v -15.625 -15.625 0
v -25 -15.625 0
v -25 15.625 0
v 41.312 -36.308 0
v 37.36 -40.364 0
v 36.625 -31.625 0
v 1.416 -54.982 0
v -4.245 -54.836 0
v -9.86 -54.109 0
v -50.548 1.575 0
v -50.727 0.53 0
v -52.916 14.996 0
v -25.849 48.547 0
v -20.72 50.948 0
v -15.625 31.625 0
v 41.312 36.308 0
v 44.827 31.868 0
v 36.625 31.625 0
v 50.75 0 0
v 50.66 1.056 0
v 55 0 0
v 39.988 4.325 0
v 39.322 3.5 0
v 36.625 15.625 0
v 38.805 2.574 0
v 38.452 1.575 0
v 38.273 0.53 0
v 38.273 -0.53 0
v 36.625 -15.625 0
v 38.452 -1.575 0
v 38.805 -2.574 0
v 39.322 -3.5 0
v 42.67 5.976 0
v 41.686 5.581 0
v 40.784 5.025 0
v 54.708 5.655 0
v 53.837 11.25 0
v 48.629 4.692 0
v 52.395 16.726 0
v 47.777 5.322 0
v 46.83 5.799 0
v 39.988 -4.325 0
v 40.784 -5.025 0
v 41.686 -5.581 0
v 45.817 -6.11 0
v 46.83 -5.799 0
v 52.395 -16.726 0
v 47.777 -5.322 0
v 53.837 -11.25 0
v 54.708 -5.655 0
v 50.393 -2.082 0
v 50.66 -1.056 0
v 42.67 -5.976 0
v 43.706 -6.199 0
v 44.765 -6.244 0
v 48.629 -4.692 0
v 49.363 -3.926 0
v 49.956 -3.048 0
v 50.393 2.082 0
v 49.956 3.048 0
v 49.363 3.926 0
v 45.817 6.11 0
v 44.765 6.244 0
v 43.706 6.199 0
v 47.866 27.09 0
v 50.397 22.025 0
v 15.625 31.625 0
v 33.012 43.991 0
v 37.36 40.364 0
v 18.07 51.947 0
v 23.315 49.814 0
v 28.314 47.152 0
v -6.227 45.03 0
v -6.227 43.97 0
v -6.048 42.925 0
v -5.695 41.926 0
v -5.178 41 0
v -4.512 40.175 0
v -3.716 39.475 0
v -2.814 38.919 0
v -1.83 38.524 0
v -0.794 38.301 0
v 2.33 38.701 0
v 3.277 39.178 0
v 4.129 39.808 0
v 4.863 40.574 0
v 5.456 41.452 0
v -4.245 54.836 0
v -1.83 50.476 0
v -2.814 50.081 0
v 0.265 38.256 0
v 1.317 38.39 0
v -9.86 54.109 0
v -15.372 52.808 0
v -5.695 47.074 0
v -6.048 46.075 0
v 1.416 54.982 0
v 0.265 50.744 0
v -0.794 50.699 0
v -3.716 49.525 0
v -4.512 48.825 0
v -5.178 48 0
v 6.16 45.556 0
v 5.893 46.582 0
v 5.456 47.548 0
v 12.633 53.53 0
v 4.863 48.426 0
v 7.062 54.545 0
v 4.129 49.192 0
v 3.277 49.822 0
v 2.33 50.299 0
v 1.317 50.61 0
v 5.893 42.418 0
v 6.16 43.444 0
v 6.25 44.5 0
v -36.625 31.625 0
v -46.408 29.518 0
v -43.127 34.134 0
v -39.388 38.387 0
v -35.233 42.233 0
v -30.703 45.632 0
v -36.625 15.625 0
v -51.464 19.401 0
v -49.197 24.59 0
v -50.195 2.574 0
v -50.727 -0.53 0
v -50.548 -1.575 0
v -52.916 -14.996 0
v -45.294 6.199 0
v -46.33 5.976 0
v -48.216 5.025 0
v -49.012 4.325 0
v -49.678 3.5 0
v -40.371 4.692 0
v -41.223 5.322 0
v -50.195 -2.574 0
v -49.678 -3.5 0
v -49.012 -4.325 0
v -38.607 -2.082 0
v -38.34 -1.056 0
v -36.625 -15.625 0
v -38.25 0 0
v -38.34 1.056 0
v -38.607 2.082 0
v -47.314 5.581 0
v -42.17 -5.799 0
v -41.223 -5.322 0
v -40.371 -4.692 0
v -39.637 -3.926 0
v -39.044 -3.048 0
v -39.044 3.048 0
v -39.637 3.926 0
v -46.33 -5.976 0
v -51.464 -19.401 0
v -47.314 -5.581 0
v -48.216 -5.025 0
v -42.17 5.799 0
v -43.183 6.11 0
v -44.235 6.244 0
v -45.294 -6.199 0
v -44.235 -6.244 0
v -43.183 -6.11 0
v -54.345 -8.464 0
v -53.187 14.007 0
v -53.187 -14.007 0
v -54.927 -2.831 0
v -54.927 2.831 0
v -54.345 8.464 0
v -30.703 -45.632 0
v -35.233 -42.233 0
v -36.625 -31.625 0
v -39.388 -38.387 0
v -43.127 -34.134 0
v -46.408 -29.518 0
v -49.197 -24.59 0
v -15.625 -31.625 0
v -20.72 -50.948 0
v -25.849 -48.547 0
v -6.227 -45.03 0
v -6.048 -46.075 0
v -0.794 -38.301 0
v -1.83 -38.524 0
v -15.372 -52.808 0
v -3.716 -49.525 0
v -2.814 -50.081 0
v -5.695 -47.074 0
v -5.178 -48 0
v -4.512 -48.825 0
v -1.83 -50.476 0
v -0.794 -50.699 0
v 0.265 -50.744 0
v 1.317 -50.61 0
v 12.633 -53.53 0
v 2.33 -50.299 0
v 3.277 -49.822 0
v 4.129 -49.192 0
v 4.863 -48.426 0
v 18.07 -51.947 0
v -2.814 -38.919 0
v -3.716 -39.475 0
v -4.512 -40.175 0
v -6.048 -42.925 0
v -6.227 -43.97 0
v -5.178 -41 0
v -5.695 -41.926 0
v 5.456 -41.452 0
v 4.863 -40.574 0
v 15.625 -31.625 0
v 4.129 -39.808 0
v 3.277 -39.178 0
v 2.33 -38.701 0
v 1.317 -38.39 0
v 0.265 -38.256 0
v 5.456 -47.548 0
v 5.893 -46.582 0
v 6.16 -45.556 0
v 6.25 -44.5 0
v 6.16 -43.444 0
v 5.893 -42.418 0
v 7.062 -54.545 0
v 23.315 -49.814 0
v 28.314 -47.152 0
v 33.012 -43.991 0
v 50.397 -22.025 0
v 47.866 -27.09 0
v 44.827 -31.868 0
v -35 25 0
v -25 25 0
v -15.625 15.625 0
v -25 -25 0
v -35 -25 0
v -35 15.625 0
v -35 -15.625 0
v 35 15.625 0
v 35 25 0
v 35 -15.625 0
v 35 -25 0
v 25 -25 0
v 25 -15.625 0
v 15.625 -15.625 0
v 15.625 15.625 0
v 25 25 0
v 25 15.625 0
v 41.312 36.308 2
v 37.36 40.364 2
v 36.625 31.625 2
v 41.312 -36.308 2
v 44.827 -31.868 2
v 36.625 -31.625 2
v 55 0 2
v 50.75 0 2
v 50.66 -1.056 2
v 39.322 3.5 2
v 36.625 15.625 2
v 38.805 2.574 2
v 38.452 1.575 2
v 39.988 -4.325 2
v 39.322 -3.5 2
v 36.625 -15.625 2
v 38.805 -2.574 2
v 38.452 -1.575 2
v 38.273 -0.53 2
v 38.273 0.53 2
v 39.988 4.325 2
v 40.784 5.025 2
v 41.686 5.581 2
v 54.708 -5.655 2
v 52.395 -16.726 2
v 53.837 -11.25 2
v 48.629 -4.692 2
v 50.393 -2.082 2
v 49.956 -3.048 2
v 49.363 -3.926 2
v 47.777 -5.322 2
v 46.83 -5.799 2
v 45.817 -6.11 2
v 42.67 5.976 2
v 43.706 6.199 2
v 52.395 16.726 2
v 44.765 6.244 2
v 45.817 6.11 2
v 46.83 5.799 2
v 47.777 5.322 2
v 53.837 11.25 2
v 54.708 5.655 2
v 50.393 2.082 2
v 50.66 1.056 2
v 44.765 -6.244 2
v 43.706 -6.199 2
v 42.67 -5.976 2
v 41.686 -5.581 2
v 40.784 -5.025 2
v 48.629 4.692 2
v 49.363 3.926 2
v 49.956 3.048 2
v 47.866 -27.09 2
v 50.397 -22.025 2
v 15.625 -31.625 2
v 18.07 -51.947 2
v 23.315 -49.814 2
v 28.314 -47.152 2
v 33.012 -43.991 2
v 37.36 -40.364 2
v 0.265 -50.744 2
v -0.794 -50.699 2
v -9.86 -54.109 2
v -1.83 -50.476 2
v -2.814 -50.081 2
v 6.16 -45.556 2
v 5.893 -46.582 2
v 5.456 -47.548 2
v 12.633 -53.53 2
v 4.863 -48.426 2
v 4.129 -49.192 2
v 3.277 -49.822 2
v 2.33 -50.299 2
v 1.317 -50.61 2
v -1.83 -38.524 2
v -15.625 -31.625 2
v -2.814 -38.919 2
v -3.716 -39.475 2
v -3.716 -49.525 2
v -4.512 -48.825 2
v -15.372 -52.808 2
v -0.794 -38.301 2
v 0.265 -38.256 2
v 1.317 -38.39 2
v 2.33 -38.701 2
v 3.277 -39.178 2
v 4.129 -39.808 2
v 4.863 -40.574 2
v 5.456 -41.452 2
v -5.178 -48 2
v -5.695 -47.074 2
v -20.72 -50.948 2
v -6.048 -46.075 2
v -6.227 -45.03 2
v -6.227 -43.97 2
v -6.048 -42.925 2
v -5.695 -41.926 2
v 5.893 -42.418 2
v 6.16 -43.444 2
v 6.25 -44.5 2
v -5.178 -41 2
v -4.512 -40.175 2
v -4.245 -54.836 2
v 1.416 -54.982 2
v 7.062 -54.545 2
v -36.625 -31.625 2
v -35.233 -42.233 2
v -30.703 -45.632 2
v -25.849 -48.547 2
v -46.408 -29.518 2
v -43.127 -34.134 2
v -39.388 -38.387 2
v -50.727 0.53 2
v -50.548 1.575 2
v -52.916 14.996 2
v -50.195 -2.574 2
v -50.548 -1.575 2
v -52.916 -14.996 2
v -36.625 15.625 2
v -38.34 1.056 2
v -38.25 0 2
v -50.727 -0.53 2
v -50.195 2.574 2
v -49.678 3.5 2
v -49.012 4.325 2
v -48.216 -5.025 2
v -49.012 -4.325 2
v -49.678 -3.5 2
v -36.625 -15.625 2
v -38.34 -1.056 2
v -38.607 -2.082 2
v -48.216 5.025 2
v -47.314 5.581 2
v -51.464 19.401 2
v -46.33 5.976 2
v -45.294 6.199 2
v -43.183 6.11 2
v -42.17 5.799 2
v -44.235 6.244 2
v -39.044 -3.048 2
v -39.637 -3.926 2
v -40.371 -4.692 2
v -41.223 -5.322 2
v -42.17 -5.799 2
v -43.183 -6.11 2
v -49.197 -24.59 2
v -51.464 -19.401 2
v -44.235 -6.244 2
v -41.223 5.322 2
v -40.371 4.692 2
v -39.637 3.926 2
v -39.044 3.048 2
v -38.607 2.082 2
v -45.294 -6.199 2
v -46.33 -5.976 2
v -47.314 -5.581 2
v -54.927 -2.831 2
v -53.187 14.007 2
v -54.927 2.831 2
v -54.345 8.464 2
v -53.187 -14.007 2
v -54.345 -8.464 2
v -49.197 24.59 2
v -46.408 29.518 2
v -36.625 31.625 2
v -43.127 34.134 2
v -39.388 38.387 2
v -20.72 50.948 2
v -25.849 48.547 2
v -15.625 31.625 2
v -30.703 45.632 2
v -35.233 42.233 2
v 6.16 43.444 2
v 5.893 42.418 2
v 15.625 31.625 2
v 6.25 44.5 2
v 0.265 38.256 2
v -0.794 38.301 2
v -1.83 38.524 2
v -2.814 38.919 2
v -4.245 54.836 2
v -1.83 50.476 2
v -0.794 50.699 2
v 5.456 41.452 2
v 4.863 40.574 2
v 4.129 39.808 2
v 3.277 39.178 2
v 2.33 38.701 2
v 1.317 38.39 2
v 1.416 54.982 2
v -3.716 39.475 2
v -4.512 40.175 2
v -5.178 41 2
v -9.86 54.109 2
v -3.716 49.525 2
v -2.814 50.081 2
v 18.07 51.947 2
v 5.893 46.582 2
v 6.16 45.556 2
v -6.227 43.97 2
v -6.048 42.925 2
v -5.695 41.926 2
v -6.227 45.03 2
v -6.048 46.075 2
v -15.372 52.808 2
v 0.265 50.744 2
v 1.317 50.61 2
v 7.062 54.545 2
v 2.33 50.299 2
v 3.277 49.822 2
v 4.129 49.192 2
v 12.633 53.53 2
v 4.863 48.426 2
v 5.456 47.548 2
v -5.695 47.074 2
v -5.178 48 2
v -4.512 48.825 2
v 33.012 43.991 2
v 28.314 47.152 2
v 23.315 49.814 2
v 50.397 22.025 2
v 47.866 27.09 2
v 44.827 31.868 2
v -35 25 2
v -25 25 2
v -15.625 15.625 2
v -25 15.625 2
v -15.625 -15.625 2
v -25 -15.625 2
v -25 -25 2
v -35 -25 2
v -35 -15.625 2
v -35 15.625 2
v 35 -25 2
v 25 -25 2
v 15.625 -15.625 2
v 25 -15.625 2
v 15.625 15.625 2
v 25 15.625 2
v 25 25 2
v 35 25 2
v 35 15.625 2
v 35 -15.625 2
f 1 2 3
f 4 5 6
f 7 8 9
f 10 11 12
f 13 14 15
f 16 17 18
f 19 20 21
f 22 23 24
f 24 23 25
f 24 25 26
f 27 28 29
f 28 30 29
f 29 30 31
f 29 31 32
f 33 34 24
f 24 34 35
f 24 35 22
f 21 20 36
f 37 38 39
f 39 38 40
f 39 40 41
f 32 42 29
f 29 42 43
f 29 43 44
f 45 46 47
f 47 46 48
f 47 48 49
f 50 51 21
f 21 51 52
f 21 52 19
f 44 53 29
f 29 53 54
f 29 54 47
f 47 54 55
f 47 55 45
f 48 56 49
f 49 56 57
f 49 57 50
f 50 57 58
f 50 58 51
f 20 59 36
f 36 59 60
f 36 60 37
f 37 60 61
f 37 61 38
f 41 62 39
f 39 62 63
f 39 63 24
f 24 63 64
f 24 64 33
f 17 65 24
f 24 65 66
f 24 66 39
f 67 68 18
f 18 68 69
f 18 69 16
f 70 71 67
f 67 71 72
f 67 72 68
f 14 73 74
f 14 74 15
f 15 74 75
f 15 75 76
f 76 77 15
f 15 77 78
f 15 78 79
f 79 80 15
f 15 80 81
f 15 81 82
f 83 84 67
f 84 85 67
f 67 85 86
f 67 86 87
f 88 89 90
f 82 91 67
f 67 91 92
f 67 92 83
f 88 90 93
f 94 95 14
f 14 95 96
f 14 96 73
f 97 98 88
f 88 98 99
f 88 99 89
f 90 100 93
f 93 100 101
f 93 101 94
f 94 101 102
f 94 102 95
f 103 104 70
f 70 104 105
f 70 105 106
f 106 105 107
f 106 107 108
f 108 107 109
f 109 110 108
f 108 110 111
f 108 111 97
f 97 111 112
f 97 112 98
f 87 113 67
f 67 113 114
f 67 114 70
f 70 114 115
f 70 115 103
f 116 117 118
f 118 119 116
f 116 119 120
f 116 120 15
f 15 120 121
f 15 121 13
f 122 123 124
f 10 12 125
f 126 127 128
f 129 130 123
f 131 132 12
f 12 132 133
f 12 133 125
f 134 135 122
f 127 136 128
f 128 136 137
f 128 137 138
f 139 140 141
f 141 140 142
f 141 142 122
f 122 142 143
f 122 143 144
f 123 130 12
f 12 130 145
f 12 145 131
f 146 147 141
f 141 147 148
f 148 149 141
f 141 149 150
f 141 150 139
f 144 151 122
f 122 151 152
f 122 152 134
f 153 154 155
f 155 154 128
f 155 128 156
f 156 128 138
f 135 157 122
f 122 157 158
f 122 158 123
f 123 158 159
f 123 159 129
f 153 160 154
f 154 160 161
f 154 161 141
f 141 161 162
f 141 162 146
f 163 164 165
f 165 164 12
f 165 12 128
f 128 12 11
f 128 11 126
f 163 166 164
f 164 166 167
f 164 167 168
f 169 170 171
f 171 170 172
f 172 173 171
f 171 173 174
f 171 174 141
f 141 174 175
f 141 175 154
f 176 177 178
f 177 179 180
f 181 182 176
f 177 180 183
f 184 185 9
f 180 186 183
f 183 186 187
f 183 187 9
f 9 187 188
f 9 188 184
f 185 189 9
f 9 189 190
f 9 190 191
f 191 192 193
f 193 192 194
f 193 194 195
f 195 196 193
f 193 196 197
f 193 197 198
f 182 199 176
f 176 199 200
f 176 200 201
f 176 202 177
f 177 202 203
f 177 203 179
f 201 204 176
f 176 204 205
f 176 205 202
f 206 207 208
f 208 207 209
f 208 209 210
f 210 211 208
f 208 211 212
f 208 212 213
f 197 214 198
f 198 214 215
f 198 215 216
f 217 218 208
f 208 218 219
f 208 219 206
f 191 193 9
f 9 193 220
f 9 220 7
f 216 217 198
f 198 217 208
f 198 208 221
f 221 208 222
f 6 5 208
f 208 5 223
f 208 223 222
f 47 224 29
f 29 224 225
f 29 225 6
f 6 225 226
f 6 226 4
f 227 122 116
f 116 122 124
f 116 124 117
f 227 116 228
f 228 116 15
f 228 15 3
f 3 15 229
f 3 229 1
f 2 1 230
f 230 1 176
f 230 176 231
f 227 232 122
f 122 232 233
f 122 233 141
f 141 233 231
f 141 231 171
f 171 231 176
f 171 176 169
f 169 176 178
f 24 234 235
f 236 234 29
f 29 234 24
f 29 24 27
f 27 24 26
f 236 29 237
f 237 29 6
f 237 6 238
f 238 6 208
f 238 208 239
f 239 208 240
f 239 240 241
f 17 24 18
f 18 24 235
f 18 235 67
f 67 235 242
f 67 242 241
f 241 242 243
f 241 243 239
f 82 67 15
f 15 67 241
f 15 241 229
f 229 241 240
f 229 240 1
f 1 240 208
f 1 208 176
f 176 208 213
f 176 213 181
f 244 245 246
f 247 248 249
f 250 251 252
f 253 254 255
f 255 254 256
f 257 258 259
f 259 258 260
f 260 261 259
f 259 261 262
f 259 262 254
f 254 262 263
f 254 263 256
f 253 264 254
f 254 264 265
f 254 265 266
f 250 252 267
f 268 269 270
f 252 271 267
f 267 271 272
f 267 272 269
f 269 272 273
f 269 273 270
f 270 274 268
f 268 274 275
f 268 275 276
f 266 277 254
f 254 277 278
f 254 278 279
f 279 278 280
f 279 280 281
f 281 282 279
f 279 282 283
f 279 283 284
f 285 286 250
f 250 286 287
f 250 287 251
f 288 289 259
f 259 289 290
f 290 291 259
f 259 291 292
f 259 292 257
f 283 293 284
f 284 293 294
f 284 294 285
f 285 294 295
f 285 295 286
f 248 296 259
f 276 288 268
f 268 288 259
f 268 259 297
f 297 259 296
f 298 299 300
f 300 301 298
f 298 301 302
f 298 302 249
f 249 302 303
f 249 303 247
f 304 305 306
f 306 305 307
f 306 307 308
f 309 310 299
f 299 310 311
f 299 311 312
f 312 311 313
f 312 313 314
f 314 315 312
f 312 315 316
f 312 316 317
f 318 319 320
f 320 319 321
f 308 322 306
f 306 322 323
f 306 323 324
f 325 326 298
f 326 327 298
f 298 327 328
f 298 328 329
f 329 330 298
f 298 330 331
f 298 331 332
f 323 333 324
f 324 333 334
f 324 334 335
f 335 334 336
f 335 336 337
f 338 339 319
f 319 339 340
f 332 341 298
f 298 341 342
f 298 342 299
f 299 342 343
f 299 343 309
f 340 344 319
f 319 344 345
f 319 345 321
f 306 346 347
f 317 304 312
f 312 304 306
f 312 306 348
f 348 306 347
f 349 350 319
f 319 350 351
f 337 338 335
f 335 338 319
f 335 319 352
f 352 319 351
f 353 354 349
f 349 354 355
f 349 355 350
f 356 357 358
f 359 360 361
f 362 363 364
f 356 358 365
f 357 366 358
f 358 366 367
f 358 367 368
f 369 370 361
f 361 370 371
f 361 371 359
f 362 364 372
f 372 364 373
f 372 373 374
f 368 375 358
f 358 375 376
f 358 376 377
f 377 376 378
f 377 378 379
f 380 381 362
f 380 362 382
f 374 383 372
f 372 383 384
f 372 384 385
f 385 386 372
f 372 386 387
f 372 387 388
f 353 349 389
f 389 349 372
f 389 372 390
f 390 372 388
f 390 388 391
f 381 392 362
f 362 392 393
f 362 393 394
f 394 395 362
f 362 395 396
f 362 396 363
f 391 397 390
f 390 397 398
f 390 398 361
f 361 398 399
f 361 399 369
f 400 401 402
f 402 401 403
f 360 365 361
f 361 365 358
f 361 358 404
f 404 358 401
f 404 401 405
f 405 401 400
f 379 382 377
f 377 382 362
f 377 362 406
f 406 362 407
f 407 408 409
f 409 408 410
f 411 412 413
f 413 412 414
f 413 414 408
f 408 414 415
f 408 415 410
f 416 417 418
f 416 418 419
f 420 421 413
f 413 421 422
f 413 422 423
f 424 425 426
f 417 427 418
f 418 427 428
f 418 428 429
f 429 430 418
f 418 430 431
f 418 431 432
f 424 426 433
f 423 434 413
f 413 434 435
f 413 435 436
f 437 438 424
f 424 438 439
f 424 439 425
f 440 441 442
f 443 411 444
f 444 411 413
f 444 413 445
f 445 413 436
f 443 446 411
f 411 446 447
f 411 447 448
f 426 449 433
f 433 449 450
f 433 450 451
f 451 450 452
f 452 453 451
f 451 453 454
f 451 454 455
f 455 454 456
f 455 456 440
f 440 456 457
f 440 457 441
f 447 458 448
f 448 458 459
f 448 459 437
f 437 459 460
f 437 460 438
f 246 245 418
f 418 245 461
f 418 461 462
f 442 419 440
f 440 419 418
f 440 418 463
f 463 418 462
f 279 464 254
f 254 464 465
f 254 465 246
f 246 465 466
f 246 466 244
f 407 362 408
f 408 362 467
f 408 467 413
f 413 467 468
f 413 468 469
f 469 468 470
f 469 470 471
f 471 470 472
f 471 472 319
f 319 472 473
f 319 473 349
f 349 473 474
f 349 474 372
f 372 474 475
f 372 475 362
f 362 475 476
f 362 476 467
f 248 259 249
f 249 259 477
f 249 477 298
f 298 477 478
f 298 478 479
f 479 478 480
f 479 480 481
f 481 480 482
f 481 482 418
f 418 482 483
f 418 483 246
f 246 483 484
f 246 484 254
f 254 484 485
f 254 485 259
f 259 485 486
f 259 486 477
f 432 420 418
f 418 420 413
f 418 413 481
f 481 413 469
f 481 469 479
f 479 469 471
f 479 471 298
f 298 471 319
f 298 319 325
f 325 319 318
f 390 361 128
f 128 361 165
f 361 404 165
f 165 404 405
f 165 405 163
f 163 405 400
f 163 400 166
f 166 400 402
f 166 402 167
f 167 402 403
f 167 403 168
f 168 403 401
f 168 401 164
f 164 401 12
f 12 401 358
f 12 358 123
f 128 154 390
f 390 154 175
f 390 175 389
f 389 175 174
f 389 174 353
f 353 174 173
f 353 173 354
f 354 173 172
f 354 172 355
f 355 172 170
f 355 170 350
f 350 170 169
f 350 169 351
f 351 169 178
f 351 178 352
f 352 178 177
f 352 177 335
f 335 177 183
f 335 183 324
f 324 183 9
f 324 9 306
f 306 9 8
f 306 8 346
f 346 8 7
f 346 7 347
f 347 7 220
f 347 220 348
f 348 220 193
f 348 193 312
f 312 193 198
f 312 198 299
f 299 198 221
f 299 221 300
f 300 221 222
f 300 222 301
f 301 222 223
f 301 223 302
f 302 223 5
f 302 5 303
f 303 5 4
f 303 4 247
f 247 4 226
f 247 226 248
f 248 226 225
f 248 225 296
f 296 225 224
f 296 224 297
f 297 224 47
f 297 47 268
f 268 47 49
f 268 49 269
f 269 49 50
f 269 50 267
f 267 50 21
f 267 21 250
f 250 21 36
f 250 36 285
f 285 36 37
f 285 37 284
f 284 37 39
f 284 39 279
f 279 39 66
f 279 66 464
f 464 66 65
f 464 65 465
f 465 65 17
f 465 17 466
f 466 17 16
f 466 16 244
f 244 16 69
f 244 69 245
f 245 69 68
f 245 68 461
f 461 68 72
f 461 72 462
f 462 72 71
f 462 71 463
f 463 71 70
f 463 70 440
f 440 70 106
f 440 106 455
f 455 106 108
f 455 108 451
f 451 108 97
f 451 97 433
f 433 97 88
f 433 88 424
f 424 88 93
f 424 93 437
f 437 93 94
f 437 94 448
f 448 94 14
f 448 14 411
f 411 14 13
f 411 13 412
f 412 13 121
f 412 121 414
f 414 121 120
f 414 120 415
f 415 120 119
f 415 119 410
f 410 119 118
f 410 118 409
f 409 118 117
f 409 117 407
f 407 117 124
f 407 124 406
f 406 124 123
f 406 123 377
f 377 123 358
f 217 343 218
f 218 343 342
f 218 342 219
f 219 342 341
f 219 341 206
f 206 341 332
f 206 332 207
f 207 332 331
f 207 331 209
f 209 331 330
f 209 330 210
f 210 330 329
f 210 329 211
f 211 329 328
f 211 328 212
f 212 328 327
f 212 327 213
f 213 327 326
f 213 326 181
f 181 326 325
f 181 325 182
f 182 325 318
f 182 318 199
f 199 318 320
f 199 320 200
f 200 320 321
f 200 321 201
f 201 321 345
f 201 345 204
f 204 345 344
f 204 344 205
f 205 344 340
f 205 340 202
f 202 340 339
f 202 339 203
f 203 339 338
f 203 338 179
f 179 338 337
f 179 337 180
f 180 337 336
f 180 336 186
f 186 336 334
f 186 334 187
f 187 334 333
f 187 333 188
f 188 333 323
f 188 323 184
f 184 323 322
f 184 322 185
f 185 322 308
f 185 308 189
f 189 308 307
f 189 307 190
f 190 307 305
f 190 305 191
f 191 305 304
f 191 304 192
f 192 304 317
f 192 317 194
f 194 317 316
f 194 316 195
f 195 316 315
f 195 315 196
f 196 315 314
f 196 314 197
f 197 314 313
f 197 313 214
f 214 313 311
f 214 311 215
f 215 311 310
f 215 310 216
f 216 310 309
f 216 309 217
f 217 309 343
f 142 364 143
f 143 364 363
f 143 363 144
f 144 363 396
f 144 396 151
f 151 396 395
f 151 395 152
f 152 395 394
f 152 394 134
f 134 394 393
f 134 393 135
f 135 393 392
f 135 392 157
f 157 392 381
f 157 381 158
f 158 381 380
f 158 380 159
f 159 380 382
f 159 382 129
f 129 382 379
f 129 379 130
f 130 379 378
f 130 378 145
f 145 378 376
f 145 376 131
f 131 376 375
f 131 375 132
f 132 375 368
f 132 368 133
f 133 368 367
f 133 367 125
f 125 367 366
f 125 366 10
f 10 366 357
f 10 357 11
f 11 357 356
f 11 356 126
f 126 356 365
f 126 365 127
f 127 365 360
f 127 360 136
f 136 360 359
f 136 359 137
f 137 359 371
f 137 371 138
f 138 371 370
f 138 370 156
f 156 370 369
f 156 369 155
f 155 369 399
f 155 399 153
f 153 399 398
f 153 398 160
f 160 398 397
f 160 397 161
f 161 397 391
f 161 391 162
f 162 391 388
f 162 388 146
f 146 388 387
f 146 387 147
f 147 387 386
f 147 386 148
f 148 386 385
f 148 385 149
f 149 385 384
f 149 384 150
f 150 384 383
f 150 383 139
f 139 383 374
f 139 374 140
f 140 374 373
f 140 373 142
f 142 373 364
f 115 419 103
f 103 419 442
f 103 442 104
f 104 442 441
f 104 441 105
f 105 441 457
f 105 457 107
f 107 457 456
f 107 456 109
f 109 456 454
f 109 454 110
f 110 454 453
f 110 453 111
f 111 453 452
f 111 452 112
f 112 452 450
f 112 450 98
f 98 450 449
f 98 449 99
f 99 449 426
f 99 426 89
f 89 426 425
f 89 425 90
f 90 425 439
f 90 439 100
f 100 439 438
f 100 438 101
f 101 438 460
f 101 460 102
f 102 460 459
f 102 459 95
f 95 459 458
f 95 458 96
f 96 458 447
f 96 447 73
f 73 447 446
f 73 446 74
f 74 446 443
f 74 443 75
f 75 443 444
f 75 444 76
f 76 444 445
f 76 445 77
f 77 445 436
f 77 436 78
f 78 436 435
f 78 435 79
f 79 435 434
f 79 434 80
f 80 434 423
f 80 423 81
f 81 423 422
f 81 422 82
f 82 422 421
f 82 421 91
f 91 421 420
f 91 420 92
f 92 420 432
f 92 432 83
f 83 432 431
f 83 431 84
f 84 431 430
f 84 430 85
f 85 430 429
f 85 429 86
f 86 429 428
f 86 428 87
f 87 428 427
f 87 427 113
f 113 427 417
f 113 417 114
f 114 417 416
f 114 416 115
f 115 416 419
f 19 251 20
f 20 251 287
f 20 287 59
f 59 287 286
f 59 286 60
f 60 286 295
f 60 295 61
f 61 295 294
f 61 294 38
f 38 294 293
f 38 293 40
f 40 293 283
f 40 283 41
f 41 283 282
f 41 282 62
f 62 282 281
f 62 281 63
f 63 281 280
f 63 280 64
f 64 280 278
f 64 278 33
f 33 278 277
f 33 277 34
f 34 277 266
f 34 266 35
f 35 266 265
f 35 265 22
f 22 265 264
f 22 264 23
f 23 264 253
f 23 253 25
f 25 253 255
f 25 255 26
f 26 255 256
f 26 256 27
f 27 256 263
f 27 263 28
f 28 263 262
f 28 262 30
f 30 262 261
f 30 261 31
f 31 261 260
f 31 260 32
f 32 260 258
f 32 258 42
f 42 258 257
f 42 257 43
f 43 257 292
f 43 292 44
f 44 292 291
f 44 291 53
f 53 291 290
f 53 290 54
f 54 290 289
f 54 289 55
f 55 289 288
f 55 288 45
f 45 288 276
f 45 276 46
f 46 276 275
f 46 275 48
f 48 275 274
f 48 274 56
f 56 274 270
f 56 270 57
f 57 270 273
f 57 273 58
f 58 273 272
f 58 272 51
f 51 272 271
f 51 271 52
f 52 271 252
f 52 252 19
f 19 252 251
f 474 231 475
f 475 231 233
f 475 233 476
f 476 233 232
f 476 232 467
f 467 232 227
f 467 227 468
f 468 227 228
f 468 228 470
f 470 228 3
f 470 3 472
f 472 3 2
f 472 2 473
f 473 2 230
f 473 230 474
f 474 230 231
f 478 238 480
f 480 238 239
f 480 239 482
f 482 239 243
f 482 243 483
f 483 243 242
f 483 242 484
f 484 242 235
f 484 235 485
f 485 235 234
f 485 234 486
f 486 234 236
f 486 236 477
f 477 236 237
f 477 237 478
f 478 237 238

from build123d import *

# Parameters (mm, degrees)
SKETCH4_R           = 59
BOSS_EXTRUDE3_DEPTH = 2
SKETCH5_R           = 1.375
BOSS_EXTRUDE5_DEPTH = 7
SKETCH8_R           = 2.375
BOSS_EXTRUDE6_DEPTH = 2
BOSS_EXTRUDE7_DEPTH = 18
SKETCH10_R          = 7.5
CUT_EXTRUDE1_DEPTH  = 18
SKETCH12_R          = 57.5
CUT_EXTRUDE2_DEPTH  = 5
CUT_EXTRUDE3_DEPTH  = 5.5
SKETCH15_R          = 89.714021058
SKETCH15_R_2        = 57
CUT_EXTRUDE4_DEPTH  = 22
SKETCH16_R          = 62.462022857
CUT_EXTRUDE8_DEPTH  = 52
CUT_EXTRUDE9_DEPTH  = 52
SKETCH18_R          = 80.62246508
SKETCH18_R_2        = 55
CUT_EXTRUDE10_DEPTH = 10
SKETCH19_R          = 55
BOSS_EXTRUDE8_DEPTH = 2
SKETCH20_R          = 6.25
CUT_EXTRUDE11_DEPTH = 2
SKETCH21_W          = 10
SKETCH21_H          = 50
CUT_EXTRUDE12_DEPTH = 3
SKETCH22_R          = 40.394642533
CUT_EXTRUDE13_DEPTH = 10


with BuildPart() as part:
    # Sketch4 → Boss-Extrude3 (new body)
    with BuildSketch(Plane.XY):
        Circle(SKETCH4_R)
    extrude(amount=BOSS_EXTRUDE3_DEPTH)

    # Sketch5 → Boss-Extrude5 (add)
    with BuildSketch(Plane.XY.offset(2)):
        with Locations((-22.5, 27.5)):
            Circle(SKETCH5_R)
        with Locations((22.5, 27.5)):
            Circle(SKETCH5_R)
        with Locations((22.5, -27.5)):
            Circle(SKETCH5_R)
        with Locations((-22.5, -27.5)):
            Circle(SKETCH5_R)
    extrude(amount=BOSS_EXTRUDE5_DEPTH)

    # Sketch8 → Boss-Extrude6 (add)
    with BuildSketch(Plane.XY.offset(2)):
        with Locations((-22.5, 27.5)):
            Circle(SKETCH8_R)
        with Locations((22.5, 27.5)):
            Circle(SKETCH8_R)
        with Locations((-22.5, -27.5)):
            Circle(SKETCH8_R)
        with Locations((22.5, -27.5)):
            Circle(SKETCH8_R)
    extrude(amount=BOSS_EXTRUDE6_DEPTH)

    # Sketch9 → Boss-Extrude7 (add)
    with BuildSketch(Plane.XY.offset(2)):
        with BuildLine():
            ThreePointArc((-4.745762712, 55.798546005), (0, 56), (4.745762712, 55.798546005))
            Line((4.745762712, 55.798546005), (5, 58.787753827))
            ThreePointArc((5, 58.787753827), (0, 59), (-5, 58.787753827))
            Line((-5, 58.787753827), (-4.745762712, 55.798546005))
        make_face()
        with BuildLine():
            Line((-55.798546005, 4.745762712), (-58.787753827, 5))
            ThreePointArc((-58.787753827, 5), (-59, 0), (-58.787753827, -5))
            Line((-58.787753827, -5), (-55.798546005, -4.745762712))
            ThreePointArc((-55.798546005, -4.745762712), (-56, 0), (-55.798546005, 4.745762712))
        make_face()
        with BuildLine():
            ThreePointArc((58.787753827, -5), (59, 0), (58.787753827, 5))
            Line((58.787753827, 5), (55.798546005, 4.745762712))
            ThreePointArc((55.798546005, 4.745762712), (56, 0), (55.798546005, -4.745762712))
            Line((55.798546005, -4.745762712), (58.787753827, -5))
        make_face()
        with BuildLine():
            ThreePointArc((-4.745762712, -55.798546005), (0, -56), (4.745762712, -55.798546005))
            Line((4.745762712, -55.798546005), (5, -58.787753827))
            ThreePointArc((5, -58.787753827), (0, -59), (-5, -58.787753827))
            Line((-5, -58.787753827), (-4.745762712, -55.798546005))
        make_face()
    extrude(amount=BOSS_EXTRUDE7_DEPTH)

    # Sketch10 → Cut-Extrude1 (cut)
    with BuildSketch(Plane.XY.offset(2)):
        with Locations((-40, 0)):
            Circle(SKETCH10_R)
    extrude(amount=-CUT_EXTRUDE1_DEPTH, mode=Mode.SUBTRACT)

    # Sketch12 → Cut-Extrude2 (cut)
    with BuildSketch(Plane.XY.offset(20)):
        Circle(SKETCH12_R)
    extrude(amount=-CUT_EXTRUDE2_DEPTH, mode=Mode.SUBTRACT)

    # Sketch13 → Cut-Extrude3 (cut)
    with BuildSketch(Plane(origin=(0, 0, 0), x_dir=(-1, 0, 0), z_dir=(0, 0, -1))):
        with BuildLine():
            Line((-57.243329786, 4.868644068), (-58.787753827, 5))
            ThreePointArc((-58.787753827, 5), (-59, 0), (-58.787753827, -5))
            Line((-58.787753827, -5), (-57.243329786, -4.868644068))
            ThreePointArc((-57.243329786, -4.868644068), (-57.45, 0), (-57.243329786, 4.868644068))
        make_face()
        with BuildLine():
            ThreePointArc((5, 58.787753827), (0, 59), (-5, 58.787753827))
            Line((-5, 58.787753827), (-4.868644068, 57.243329786))
            ThreePointArc((-4.868644068, 57.243329786), (0, 57.45), (4.868644068, 57.243329786))
            Line((4.868644068, 57.243329786), (5, 58.787753827))
        make_face()
        with BuildLine():
            Line((-4.868644068, -57.243329786), (-5, -58.787753827))
            ThreePointArc((-5, -58.787753827), (0, -59), (5, -58.787753827))
            Line((5, -58.787753827), (4.868644068, -57.243329786))
            ThreePointArc((4.868644068, -57.243329786), (0, -57.45), (-4.868644068, -57.243329786))
        make_face()
        with BuildLine():
            ThreePointArc((58.787753827, -5), (59, 0), (58.787753827, 5))
            Line((58.787753827, 5), (57.243329786, 4.868644068))
            ThreePointArc((57.243329786, 4.868644068), (57.45, 0), (57.243329786, -4.868644068))
            Line((57.243329786, -4.868644068), (58.787753827, -5))
        make_face()
    extrude(amount=-CUT_EXTRUDE3_DEPTH, mode=Mode.SUBTRACT)

    # Sketch15 → Cut-Extrude4 (cut)
    with BuildSketch(Plane(origin=(0, 0, 0), x_dir=(-1, 0, 0), z_dir=(0, 0, -1))):
        Circle(SKETCH15_R)
        Circle(SKETCH15_R_2, mode=Mode.SUBTRACT)
    extrude(amount=-CUT_EXTRUDE4_DEPTH, mode=Mode.SUBTRACT)

    # Sketch16 → Cut-Extrude8 (cut)
    with BuildSketch(Plane.XY.offset(2)):
        Circle(SKETCH16_R)
        with BuildLine():
            Line((55.798546005, 4.745762712), (56.794948612, 4.830508475))
            ThreePointArc((56.794948612, 4.830508475), (40.305086528, 40.305086528), (4.830508475, 56.794948612))
            Line((4.830508475, 56.794948612), (4.745762712, 55.798546005))
            ThreePointArc((4.745762712, 55.798546005), (0, 56), (-4.745762712, 55.798546005))
            Line((-4.745762712, 55.798546005), (-4.830508475, 56.794948612))
            ThreePointArc((-4.830508475, 56.794948612), (-40.305086528, 40.305086528), (-56.794948612, 4.830508475))
            Line((-56.794948612, 4.830508475), (-55.798546005, 4.745762712))
            ThreePointArc((-55.798546005, 4.745762712), (-56, 0), (-55.798546005, -4.745762712))
            Line((-55.798546005, -4.745762712), (-56.794948612, -4.830508475))
            ThreePointArc((-56.794948612, -4.830508475), (-40.305086528, -40.305086528), (-4.830508475, -56.794948612))
            Line((-4.830508475, -56.794948612), (-4.745762712, -55.798546005))
            ThreePointArc((-4.745762712, -55.798546005), (0, -56), (4.745762712, -55.798546005))
            Line((4.745762712, -55.798546005), (4.830508475, -56.794948612))
            ThreePointArc((4.830508475, -56.794948612), (40.305086528, -40.305086528), (56.794948612, -4.830508475))
            Line((56.794948612, -4.830508475), (55.798546005, -4.745762712))
            ThreePointArc((55.798546005, -4.745762712), (56, 0), (55.798546005, 4.745762712))
        make_face(mode=Mode.SUBTRACT)
    extrude(amount=CUT_EXTRUDE8_DEPTH, mode=Mode.SUBTRACT)

    # Sketch17 → Cut-Extrude9 (cut)
    with BuildSketch(Plane.XY.offset(2)):
        with BuildLine():
            Line((-5, 57), (5, 57))
            Line((5, 57), (4.806106124, 54.789609817))
            ThreePointArc((4.806106124, 54.789609817), (0, 55), (-4.806106124, 54.789609817))
            Line((-4.806106124, 54.789609817), (-5, 57))
        make_face()
        with BuildLine():
            Line((54.789609817, 4.806106124), (57, 5))
            Line((57, 5), (57, -5))
            Line((57, -5), (54.789609817, -4.806106124))
            ThreePointArc((54.789609817, -4.806106124), (55, 0), (54.789609817, 4.806106124))
        make_face()
        with BuildLine():
            Line((4.806106124, -54.789609817), (5, -57))
            Line((5, -57), (-5, -57))
            Line((-5, -57), (-4.806106124, -54.789609817))
            ThreePointArc((-4.806106124, -54.789609817), (0, -55), (4.806106124, -54.789609817))
        make_face()
        with BuildLine():
            Line((-54.789609817, -4.806106124), (-57, -5))
            Line((-57, -5), (-57, 5))
            Line((-57, 5), (-54.789609817, 4.806106124))
            ThreePointArc((-54.789609817, 4.806106124), (-55, 0), (-54.789609817, -4.806106124))
        make_face()
    extrude(amount=-CUT_EXTRUDE9_DEPTH, mode=Mode.SUBTRACT)

    # Sketch18 → Cut-Extrude10 (cut)
    with BuildSketch(Plane.XY.offset(2)):
        Circle(SKETCH18_R)
        Circle(SKETCH18_R_2, mode=Mode.SUBTRACT)
    extrude(amount=-CUT_EXTRUDE10_DEPTH, mode=Mode.SUBTRACT)

    # Sketch19 → Boss-Extrude8 (add)
    with BuildSketch(Plane.XY.offset(2)):
        Circle(SKETCH19_R)
    extrude(amount=-BOSS_EXTRUDE8_DEPTH)

    # Sketch20 → Cut-Extrude11 (cut)
    with BuildSketch(Plane.XY.offset(2)):
        with Locations((0, 44.5)):
            Circle(SKETCH20_R)
        with Locations((44.5, 0)):
            Circle(SKETCH20_R)
        with Locations((0, -44.5)):
            Circle(SKETCH20_R)
        with Locations((-44.5, 0)):
            Circle(SKETCH20_R)
    extrude(amount=-CUT_EXTRUDE11_DEPTH, mode=Mode.SUBTRACT)

    # Sketch21 → Cut-Extrude12 (cut)
    with BuildSketch(Plane.XY.offset(2)):
        with Locations((30, 0)):
            Rectangle(SKETCH21_W, SKETCH21_H)
        with Locations((-30, 0)):
            Rectangle(SKETCH21_W, SKETCH21_H)
    extrude(amount=-CUT_EXTRUDE12_DEPTH, mode=Mode.SUBTRACT)

    # Sketch22 → Cut-Extrude13 (cut)
    with BuildSketch(Plane.XY.offset(2)):
        Circle(SKETCH22_R)
    extrude(amount=CUT_EXTRUDE13_DEPTH, mode=Mode.SUBTRACT)


solid = part.part
